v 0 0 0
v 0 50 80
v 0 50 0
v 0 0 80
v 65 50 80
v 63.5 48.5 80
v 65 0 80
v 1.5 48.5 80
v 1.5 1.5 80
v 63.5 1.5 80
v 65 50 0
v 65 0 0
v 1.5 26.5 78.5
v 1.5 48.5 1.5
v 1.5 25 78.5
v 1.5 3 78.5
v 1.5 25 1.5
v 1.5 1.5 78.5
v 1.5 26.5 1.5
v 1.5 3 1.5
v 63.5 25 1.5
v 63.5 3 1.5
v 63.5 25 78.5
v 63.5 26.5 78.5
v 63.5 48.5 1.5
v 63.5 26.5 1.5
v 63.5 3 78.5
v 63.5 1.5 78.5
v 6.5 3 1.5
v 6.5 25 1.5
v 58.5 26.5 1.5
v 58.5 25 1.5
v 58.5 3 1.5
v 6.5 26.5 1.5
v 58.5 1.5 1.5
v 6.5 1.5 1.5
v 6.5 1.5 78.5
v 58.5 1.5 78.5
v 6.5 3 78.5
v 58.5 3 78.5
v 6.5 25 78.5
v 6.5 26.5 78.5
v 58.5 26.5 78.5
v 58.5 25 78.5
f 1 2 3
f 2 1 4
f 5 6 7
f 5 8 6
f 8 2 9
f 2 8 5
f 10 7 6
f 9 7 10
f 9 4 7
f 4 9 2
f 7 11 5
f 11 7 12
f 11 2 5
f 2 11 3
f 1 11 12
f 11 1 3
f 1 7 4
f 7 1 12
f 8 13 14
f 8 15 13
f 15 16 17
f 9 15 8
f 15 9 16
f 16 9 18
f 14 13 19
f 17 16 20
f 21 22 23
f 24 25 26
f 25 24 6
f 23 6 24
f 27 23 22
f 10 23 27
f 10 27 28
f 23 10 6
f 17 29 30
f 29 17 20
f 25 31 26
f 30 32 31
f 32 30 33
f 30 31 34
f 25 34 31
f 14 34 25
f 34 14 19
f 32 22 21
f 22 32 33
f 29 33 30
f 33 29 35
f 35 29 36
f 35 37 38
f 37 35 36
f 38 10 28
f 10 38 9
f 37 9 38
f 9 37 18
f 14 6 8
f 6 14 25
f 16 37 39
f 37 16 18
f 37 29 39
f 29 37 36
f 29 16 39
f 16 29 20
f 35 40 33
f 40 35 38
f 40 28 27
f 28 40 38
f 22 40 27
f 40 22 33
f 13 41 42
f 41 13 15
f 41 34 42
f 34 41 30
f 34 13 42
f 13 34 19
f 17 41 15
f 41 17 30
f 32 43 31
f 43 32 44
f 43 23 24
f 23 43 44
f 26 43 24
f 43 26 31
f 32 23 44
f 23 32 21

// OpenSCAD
wb_width=65;
wb_depth=50;
wb_height=80;
wb_thickness=1.5;

slider_height=(wb_depth-wb_thickness-wb_thickness)/2-0.5;


difference() {
    cube([wb_width,wb_depth,wb_height]);


    translate([wb_thickness, wb_thickness, wb_thickness])
    cube([wb_width-wb_thickness*2,wb_depth-wb_thickness*2, wb_height]);

}

color("yellow")
translate([wb_thickness, wb_thickness, wb_thickness])
cube([5, wb_thickness, wb_height-wb_thickness-wb_thickness]);

color("yellow")
translate([wb_width-wb_thickness-5, wb_thickness, wb_thickness])
cube([5, wb_thickness, wb_height-wb_thickness-wb_thickness]);

color("cyan")
translate([wb_thickness, wb_thickness + slider_height + 0.5, wb_thickness])
cube([5, wb_thickness, wb_height-wb_thickness-wb_thickness]);

color("cyan")
translate([wb_width-wb_thickness-5, wb_thickness + slider_height + 0.5, wb_thickness])
cube([5, wb_thickness, wb_height-wb_thickness-wb_thickness]);
